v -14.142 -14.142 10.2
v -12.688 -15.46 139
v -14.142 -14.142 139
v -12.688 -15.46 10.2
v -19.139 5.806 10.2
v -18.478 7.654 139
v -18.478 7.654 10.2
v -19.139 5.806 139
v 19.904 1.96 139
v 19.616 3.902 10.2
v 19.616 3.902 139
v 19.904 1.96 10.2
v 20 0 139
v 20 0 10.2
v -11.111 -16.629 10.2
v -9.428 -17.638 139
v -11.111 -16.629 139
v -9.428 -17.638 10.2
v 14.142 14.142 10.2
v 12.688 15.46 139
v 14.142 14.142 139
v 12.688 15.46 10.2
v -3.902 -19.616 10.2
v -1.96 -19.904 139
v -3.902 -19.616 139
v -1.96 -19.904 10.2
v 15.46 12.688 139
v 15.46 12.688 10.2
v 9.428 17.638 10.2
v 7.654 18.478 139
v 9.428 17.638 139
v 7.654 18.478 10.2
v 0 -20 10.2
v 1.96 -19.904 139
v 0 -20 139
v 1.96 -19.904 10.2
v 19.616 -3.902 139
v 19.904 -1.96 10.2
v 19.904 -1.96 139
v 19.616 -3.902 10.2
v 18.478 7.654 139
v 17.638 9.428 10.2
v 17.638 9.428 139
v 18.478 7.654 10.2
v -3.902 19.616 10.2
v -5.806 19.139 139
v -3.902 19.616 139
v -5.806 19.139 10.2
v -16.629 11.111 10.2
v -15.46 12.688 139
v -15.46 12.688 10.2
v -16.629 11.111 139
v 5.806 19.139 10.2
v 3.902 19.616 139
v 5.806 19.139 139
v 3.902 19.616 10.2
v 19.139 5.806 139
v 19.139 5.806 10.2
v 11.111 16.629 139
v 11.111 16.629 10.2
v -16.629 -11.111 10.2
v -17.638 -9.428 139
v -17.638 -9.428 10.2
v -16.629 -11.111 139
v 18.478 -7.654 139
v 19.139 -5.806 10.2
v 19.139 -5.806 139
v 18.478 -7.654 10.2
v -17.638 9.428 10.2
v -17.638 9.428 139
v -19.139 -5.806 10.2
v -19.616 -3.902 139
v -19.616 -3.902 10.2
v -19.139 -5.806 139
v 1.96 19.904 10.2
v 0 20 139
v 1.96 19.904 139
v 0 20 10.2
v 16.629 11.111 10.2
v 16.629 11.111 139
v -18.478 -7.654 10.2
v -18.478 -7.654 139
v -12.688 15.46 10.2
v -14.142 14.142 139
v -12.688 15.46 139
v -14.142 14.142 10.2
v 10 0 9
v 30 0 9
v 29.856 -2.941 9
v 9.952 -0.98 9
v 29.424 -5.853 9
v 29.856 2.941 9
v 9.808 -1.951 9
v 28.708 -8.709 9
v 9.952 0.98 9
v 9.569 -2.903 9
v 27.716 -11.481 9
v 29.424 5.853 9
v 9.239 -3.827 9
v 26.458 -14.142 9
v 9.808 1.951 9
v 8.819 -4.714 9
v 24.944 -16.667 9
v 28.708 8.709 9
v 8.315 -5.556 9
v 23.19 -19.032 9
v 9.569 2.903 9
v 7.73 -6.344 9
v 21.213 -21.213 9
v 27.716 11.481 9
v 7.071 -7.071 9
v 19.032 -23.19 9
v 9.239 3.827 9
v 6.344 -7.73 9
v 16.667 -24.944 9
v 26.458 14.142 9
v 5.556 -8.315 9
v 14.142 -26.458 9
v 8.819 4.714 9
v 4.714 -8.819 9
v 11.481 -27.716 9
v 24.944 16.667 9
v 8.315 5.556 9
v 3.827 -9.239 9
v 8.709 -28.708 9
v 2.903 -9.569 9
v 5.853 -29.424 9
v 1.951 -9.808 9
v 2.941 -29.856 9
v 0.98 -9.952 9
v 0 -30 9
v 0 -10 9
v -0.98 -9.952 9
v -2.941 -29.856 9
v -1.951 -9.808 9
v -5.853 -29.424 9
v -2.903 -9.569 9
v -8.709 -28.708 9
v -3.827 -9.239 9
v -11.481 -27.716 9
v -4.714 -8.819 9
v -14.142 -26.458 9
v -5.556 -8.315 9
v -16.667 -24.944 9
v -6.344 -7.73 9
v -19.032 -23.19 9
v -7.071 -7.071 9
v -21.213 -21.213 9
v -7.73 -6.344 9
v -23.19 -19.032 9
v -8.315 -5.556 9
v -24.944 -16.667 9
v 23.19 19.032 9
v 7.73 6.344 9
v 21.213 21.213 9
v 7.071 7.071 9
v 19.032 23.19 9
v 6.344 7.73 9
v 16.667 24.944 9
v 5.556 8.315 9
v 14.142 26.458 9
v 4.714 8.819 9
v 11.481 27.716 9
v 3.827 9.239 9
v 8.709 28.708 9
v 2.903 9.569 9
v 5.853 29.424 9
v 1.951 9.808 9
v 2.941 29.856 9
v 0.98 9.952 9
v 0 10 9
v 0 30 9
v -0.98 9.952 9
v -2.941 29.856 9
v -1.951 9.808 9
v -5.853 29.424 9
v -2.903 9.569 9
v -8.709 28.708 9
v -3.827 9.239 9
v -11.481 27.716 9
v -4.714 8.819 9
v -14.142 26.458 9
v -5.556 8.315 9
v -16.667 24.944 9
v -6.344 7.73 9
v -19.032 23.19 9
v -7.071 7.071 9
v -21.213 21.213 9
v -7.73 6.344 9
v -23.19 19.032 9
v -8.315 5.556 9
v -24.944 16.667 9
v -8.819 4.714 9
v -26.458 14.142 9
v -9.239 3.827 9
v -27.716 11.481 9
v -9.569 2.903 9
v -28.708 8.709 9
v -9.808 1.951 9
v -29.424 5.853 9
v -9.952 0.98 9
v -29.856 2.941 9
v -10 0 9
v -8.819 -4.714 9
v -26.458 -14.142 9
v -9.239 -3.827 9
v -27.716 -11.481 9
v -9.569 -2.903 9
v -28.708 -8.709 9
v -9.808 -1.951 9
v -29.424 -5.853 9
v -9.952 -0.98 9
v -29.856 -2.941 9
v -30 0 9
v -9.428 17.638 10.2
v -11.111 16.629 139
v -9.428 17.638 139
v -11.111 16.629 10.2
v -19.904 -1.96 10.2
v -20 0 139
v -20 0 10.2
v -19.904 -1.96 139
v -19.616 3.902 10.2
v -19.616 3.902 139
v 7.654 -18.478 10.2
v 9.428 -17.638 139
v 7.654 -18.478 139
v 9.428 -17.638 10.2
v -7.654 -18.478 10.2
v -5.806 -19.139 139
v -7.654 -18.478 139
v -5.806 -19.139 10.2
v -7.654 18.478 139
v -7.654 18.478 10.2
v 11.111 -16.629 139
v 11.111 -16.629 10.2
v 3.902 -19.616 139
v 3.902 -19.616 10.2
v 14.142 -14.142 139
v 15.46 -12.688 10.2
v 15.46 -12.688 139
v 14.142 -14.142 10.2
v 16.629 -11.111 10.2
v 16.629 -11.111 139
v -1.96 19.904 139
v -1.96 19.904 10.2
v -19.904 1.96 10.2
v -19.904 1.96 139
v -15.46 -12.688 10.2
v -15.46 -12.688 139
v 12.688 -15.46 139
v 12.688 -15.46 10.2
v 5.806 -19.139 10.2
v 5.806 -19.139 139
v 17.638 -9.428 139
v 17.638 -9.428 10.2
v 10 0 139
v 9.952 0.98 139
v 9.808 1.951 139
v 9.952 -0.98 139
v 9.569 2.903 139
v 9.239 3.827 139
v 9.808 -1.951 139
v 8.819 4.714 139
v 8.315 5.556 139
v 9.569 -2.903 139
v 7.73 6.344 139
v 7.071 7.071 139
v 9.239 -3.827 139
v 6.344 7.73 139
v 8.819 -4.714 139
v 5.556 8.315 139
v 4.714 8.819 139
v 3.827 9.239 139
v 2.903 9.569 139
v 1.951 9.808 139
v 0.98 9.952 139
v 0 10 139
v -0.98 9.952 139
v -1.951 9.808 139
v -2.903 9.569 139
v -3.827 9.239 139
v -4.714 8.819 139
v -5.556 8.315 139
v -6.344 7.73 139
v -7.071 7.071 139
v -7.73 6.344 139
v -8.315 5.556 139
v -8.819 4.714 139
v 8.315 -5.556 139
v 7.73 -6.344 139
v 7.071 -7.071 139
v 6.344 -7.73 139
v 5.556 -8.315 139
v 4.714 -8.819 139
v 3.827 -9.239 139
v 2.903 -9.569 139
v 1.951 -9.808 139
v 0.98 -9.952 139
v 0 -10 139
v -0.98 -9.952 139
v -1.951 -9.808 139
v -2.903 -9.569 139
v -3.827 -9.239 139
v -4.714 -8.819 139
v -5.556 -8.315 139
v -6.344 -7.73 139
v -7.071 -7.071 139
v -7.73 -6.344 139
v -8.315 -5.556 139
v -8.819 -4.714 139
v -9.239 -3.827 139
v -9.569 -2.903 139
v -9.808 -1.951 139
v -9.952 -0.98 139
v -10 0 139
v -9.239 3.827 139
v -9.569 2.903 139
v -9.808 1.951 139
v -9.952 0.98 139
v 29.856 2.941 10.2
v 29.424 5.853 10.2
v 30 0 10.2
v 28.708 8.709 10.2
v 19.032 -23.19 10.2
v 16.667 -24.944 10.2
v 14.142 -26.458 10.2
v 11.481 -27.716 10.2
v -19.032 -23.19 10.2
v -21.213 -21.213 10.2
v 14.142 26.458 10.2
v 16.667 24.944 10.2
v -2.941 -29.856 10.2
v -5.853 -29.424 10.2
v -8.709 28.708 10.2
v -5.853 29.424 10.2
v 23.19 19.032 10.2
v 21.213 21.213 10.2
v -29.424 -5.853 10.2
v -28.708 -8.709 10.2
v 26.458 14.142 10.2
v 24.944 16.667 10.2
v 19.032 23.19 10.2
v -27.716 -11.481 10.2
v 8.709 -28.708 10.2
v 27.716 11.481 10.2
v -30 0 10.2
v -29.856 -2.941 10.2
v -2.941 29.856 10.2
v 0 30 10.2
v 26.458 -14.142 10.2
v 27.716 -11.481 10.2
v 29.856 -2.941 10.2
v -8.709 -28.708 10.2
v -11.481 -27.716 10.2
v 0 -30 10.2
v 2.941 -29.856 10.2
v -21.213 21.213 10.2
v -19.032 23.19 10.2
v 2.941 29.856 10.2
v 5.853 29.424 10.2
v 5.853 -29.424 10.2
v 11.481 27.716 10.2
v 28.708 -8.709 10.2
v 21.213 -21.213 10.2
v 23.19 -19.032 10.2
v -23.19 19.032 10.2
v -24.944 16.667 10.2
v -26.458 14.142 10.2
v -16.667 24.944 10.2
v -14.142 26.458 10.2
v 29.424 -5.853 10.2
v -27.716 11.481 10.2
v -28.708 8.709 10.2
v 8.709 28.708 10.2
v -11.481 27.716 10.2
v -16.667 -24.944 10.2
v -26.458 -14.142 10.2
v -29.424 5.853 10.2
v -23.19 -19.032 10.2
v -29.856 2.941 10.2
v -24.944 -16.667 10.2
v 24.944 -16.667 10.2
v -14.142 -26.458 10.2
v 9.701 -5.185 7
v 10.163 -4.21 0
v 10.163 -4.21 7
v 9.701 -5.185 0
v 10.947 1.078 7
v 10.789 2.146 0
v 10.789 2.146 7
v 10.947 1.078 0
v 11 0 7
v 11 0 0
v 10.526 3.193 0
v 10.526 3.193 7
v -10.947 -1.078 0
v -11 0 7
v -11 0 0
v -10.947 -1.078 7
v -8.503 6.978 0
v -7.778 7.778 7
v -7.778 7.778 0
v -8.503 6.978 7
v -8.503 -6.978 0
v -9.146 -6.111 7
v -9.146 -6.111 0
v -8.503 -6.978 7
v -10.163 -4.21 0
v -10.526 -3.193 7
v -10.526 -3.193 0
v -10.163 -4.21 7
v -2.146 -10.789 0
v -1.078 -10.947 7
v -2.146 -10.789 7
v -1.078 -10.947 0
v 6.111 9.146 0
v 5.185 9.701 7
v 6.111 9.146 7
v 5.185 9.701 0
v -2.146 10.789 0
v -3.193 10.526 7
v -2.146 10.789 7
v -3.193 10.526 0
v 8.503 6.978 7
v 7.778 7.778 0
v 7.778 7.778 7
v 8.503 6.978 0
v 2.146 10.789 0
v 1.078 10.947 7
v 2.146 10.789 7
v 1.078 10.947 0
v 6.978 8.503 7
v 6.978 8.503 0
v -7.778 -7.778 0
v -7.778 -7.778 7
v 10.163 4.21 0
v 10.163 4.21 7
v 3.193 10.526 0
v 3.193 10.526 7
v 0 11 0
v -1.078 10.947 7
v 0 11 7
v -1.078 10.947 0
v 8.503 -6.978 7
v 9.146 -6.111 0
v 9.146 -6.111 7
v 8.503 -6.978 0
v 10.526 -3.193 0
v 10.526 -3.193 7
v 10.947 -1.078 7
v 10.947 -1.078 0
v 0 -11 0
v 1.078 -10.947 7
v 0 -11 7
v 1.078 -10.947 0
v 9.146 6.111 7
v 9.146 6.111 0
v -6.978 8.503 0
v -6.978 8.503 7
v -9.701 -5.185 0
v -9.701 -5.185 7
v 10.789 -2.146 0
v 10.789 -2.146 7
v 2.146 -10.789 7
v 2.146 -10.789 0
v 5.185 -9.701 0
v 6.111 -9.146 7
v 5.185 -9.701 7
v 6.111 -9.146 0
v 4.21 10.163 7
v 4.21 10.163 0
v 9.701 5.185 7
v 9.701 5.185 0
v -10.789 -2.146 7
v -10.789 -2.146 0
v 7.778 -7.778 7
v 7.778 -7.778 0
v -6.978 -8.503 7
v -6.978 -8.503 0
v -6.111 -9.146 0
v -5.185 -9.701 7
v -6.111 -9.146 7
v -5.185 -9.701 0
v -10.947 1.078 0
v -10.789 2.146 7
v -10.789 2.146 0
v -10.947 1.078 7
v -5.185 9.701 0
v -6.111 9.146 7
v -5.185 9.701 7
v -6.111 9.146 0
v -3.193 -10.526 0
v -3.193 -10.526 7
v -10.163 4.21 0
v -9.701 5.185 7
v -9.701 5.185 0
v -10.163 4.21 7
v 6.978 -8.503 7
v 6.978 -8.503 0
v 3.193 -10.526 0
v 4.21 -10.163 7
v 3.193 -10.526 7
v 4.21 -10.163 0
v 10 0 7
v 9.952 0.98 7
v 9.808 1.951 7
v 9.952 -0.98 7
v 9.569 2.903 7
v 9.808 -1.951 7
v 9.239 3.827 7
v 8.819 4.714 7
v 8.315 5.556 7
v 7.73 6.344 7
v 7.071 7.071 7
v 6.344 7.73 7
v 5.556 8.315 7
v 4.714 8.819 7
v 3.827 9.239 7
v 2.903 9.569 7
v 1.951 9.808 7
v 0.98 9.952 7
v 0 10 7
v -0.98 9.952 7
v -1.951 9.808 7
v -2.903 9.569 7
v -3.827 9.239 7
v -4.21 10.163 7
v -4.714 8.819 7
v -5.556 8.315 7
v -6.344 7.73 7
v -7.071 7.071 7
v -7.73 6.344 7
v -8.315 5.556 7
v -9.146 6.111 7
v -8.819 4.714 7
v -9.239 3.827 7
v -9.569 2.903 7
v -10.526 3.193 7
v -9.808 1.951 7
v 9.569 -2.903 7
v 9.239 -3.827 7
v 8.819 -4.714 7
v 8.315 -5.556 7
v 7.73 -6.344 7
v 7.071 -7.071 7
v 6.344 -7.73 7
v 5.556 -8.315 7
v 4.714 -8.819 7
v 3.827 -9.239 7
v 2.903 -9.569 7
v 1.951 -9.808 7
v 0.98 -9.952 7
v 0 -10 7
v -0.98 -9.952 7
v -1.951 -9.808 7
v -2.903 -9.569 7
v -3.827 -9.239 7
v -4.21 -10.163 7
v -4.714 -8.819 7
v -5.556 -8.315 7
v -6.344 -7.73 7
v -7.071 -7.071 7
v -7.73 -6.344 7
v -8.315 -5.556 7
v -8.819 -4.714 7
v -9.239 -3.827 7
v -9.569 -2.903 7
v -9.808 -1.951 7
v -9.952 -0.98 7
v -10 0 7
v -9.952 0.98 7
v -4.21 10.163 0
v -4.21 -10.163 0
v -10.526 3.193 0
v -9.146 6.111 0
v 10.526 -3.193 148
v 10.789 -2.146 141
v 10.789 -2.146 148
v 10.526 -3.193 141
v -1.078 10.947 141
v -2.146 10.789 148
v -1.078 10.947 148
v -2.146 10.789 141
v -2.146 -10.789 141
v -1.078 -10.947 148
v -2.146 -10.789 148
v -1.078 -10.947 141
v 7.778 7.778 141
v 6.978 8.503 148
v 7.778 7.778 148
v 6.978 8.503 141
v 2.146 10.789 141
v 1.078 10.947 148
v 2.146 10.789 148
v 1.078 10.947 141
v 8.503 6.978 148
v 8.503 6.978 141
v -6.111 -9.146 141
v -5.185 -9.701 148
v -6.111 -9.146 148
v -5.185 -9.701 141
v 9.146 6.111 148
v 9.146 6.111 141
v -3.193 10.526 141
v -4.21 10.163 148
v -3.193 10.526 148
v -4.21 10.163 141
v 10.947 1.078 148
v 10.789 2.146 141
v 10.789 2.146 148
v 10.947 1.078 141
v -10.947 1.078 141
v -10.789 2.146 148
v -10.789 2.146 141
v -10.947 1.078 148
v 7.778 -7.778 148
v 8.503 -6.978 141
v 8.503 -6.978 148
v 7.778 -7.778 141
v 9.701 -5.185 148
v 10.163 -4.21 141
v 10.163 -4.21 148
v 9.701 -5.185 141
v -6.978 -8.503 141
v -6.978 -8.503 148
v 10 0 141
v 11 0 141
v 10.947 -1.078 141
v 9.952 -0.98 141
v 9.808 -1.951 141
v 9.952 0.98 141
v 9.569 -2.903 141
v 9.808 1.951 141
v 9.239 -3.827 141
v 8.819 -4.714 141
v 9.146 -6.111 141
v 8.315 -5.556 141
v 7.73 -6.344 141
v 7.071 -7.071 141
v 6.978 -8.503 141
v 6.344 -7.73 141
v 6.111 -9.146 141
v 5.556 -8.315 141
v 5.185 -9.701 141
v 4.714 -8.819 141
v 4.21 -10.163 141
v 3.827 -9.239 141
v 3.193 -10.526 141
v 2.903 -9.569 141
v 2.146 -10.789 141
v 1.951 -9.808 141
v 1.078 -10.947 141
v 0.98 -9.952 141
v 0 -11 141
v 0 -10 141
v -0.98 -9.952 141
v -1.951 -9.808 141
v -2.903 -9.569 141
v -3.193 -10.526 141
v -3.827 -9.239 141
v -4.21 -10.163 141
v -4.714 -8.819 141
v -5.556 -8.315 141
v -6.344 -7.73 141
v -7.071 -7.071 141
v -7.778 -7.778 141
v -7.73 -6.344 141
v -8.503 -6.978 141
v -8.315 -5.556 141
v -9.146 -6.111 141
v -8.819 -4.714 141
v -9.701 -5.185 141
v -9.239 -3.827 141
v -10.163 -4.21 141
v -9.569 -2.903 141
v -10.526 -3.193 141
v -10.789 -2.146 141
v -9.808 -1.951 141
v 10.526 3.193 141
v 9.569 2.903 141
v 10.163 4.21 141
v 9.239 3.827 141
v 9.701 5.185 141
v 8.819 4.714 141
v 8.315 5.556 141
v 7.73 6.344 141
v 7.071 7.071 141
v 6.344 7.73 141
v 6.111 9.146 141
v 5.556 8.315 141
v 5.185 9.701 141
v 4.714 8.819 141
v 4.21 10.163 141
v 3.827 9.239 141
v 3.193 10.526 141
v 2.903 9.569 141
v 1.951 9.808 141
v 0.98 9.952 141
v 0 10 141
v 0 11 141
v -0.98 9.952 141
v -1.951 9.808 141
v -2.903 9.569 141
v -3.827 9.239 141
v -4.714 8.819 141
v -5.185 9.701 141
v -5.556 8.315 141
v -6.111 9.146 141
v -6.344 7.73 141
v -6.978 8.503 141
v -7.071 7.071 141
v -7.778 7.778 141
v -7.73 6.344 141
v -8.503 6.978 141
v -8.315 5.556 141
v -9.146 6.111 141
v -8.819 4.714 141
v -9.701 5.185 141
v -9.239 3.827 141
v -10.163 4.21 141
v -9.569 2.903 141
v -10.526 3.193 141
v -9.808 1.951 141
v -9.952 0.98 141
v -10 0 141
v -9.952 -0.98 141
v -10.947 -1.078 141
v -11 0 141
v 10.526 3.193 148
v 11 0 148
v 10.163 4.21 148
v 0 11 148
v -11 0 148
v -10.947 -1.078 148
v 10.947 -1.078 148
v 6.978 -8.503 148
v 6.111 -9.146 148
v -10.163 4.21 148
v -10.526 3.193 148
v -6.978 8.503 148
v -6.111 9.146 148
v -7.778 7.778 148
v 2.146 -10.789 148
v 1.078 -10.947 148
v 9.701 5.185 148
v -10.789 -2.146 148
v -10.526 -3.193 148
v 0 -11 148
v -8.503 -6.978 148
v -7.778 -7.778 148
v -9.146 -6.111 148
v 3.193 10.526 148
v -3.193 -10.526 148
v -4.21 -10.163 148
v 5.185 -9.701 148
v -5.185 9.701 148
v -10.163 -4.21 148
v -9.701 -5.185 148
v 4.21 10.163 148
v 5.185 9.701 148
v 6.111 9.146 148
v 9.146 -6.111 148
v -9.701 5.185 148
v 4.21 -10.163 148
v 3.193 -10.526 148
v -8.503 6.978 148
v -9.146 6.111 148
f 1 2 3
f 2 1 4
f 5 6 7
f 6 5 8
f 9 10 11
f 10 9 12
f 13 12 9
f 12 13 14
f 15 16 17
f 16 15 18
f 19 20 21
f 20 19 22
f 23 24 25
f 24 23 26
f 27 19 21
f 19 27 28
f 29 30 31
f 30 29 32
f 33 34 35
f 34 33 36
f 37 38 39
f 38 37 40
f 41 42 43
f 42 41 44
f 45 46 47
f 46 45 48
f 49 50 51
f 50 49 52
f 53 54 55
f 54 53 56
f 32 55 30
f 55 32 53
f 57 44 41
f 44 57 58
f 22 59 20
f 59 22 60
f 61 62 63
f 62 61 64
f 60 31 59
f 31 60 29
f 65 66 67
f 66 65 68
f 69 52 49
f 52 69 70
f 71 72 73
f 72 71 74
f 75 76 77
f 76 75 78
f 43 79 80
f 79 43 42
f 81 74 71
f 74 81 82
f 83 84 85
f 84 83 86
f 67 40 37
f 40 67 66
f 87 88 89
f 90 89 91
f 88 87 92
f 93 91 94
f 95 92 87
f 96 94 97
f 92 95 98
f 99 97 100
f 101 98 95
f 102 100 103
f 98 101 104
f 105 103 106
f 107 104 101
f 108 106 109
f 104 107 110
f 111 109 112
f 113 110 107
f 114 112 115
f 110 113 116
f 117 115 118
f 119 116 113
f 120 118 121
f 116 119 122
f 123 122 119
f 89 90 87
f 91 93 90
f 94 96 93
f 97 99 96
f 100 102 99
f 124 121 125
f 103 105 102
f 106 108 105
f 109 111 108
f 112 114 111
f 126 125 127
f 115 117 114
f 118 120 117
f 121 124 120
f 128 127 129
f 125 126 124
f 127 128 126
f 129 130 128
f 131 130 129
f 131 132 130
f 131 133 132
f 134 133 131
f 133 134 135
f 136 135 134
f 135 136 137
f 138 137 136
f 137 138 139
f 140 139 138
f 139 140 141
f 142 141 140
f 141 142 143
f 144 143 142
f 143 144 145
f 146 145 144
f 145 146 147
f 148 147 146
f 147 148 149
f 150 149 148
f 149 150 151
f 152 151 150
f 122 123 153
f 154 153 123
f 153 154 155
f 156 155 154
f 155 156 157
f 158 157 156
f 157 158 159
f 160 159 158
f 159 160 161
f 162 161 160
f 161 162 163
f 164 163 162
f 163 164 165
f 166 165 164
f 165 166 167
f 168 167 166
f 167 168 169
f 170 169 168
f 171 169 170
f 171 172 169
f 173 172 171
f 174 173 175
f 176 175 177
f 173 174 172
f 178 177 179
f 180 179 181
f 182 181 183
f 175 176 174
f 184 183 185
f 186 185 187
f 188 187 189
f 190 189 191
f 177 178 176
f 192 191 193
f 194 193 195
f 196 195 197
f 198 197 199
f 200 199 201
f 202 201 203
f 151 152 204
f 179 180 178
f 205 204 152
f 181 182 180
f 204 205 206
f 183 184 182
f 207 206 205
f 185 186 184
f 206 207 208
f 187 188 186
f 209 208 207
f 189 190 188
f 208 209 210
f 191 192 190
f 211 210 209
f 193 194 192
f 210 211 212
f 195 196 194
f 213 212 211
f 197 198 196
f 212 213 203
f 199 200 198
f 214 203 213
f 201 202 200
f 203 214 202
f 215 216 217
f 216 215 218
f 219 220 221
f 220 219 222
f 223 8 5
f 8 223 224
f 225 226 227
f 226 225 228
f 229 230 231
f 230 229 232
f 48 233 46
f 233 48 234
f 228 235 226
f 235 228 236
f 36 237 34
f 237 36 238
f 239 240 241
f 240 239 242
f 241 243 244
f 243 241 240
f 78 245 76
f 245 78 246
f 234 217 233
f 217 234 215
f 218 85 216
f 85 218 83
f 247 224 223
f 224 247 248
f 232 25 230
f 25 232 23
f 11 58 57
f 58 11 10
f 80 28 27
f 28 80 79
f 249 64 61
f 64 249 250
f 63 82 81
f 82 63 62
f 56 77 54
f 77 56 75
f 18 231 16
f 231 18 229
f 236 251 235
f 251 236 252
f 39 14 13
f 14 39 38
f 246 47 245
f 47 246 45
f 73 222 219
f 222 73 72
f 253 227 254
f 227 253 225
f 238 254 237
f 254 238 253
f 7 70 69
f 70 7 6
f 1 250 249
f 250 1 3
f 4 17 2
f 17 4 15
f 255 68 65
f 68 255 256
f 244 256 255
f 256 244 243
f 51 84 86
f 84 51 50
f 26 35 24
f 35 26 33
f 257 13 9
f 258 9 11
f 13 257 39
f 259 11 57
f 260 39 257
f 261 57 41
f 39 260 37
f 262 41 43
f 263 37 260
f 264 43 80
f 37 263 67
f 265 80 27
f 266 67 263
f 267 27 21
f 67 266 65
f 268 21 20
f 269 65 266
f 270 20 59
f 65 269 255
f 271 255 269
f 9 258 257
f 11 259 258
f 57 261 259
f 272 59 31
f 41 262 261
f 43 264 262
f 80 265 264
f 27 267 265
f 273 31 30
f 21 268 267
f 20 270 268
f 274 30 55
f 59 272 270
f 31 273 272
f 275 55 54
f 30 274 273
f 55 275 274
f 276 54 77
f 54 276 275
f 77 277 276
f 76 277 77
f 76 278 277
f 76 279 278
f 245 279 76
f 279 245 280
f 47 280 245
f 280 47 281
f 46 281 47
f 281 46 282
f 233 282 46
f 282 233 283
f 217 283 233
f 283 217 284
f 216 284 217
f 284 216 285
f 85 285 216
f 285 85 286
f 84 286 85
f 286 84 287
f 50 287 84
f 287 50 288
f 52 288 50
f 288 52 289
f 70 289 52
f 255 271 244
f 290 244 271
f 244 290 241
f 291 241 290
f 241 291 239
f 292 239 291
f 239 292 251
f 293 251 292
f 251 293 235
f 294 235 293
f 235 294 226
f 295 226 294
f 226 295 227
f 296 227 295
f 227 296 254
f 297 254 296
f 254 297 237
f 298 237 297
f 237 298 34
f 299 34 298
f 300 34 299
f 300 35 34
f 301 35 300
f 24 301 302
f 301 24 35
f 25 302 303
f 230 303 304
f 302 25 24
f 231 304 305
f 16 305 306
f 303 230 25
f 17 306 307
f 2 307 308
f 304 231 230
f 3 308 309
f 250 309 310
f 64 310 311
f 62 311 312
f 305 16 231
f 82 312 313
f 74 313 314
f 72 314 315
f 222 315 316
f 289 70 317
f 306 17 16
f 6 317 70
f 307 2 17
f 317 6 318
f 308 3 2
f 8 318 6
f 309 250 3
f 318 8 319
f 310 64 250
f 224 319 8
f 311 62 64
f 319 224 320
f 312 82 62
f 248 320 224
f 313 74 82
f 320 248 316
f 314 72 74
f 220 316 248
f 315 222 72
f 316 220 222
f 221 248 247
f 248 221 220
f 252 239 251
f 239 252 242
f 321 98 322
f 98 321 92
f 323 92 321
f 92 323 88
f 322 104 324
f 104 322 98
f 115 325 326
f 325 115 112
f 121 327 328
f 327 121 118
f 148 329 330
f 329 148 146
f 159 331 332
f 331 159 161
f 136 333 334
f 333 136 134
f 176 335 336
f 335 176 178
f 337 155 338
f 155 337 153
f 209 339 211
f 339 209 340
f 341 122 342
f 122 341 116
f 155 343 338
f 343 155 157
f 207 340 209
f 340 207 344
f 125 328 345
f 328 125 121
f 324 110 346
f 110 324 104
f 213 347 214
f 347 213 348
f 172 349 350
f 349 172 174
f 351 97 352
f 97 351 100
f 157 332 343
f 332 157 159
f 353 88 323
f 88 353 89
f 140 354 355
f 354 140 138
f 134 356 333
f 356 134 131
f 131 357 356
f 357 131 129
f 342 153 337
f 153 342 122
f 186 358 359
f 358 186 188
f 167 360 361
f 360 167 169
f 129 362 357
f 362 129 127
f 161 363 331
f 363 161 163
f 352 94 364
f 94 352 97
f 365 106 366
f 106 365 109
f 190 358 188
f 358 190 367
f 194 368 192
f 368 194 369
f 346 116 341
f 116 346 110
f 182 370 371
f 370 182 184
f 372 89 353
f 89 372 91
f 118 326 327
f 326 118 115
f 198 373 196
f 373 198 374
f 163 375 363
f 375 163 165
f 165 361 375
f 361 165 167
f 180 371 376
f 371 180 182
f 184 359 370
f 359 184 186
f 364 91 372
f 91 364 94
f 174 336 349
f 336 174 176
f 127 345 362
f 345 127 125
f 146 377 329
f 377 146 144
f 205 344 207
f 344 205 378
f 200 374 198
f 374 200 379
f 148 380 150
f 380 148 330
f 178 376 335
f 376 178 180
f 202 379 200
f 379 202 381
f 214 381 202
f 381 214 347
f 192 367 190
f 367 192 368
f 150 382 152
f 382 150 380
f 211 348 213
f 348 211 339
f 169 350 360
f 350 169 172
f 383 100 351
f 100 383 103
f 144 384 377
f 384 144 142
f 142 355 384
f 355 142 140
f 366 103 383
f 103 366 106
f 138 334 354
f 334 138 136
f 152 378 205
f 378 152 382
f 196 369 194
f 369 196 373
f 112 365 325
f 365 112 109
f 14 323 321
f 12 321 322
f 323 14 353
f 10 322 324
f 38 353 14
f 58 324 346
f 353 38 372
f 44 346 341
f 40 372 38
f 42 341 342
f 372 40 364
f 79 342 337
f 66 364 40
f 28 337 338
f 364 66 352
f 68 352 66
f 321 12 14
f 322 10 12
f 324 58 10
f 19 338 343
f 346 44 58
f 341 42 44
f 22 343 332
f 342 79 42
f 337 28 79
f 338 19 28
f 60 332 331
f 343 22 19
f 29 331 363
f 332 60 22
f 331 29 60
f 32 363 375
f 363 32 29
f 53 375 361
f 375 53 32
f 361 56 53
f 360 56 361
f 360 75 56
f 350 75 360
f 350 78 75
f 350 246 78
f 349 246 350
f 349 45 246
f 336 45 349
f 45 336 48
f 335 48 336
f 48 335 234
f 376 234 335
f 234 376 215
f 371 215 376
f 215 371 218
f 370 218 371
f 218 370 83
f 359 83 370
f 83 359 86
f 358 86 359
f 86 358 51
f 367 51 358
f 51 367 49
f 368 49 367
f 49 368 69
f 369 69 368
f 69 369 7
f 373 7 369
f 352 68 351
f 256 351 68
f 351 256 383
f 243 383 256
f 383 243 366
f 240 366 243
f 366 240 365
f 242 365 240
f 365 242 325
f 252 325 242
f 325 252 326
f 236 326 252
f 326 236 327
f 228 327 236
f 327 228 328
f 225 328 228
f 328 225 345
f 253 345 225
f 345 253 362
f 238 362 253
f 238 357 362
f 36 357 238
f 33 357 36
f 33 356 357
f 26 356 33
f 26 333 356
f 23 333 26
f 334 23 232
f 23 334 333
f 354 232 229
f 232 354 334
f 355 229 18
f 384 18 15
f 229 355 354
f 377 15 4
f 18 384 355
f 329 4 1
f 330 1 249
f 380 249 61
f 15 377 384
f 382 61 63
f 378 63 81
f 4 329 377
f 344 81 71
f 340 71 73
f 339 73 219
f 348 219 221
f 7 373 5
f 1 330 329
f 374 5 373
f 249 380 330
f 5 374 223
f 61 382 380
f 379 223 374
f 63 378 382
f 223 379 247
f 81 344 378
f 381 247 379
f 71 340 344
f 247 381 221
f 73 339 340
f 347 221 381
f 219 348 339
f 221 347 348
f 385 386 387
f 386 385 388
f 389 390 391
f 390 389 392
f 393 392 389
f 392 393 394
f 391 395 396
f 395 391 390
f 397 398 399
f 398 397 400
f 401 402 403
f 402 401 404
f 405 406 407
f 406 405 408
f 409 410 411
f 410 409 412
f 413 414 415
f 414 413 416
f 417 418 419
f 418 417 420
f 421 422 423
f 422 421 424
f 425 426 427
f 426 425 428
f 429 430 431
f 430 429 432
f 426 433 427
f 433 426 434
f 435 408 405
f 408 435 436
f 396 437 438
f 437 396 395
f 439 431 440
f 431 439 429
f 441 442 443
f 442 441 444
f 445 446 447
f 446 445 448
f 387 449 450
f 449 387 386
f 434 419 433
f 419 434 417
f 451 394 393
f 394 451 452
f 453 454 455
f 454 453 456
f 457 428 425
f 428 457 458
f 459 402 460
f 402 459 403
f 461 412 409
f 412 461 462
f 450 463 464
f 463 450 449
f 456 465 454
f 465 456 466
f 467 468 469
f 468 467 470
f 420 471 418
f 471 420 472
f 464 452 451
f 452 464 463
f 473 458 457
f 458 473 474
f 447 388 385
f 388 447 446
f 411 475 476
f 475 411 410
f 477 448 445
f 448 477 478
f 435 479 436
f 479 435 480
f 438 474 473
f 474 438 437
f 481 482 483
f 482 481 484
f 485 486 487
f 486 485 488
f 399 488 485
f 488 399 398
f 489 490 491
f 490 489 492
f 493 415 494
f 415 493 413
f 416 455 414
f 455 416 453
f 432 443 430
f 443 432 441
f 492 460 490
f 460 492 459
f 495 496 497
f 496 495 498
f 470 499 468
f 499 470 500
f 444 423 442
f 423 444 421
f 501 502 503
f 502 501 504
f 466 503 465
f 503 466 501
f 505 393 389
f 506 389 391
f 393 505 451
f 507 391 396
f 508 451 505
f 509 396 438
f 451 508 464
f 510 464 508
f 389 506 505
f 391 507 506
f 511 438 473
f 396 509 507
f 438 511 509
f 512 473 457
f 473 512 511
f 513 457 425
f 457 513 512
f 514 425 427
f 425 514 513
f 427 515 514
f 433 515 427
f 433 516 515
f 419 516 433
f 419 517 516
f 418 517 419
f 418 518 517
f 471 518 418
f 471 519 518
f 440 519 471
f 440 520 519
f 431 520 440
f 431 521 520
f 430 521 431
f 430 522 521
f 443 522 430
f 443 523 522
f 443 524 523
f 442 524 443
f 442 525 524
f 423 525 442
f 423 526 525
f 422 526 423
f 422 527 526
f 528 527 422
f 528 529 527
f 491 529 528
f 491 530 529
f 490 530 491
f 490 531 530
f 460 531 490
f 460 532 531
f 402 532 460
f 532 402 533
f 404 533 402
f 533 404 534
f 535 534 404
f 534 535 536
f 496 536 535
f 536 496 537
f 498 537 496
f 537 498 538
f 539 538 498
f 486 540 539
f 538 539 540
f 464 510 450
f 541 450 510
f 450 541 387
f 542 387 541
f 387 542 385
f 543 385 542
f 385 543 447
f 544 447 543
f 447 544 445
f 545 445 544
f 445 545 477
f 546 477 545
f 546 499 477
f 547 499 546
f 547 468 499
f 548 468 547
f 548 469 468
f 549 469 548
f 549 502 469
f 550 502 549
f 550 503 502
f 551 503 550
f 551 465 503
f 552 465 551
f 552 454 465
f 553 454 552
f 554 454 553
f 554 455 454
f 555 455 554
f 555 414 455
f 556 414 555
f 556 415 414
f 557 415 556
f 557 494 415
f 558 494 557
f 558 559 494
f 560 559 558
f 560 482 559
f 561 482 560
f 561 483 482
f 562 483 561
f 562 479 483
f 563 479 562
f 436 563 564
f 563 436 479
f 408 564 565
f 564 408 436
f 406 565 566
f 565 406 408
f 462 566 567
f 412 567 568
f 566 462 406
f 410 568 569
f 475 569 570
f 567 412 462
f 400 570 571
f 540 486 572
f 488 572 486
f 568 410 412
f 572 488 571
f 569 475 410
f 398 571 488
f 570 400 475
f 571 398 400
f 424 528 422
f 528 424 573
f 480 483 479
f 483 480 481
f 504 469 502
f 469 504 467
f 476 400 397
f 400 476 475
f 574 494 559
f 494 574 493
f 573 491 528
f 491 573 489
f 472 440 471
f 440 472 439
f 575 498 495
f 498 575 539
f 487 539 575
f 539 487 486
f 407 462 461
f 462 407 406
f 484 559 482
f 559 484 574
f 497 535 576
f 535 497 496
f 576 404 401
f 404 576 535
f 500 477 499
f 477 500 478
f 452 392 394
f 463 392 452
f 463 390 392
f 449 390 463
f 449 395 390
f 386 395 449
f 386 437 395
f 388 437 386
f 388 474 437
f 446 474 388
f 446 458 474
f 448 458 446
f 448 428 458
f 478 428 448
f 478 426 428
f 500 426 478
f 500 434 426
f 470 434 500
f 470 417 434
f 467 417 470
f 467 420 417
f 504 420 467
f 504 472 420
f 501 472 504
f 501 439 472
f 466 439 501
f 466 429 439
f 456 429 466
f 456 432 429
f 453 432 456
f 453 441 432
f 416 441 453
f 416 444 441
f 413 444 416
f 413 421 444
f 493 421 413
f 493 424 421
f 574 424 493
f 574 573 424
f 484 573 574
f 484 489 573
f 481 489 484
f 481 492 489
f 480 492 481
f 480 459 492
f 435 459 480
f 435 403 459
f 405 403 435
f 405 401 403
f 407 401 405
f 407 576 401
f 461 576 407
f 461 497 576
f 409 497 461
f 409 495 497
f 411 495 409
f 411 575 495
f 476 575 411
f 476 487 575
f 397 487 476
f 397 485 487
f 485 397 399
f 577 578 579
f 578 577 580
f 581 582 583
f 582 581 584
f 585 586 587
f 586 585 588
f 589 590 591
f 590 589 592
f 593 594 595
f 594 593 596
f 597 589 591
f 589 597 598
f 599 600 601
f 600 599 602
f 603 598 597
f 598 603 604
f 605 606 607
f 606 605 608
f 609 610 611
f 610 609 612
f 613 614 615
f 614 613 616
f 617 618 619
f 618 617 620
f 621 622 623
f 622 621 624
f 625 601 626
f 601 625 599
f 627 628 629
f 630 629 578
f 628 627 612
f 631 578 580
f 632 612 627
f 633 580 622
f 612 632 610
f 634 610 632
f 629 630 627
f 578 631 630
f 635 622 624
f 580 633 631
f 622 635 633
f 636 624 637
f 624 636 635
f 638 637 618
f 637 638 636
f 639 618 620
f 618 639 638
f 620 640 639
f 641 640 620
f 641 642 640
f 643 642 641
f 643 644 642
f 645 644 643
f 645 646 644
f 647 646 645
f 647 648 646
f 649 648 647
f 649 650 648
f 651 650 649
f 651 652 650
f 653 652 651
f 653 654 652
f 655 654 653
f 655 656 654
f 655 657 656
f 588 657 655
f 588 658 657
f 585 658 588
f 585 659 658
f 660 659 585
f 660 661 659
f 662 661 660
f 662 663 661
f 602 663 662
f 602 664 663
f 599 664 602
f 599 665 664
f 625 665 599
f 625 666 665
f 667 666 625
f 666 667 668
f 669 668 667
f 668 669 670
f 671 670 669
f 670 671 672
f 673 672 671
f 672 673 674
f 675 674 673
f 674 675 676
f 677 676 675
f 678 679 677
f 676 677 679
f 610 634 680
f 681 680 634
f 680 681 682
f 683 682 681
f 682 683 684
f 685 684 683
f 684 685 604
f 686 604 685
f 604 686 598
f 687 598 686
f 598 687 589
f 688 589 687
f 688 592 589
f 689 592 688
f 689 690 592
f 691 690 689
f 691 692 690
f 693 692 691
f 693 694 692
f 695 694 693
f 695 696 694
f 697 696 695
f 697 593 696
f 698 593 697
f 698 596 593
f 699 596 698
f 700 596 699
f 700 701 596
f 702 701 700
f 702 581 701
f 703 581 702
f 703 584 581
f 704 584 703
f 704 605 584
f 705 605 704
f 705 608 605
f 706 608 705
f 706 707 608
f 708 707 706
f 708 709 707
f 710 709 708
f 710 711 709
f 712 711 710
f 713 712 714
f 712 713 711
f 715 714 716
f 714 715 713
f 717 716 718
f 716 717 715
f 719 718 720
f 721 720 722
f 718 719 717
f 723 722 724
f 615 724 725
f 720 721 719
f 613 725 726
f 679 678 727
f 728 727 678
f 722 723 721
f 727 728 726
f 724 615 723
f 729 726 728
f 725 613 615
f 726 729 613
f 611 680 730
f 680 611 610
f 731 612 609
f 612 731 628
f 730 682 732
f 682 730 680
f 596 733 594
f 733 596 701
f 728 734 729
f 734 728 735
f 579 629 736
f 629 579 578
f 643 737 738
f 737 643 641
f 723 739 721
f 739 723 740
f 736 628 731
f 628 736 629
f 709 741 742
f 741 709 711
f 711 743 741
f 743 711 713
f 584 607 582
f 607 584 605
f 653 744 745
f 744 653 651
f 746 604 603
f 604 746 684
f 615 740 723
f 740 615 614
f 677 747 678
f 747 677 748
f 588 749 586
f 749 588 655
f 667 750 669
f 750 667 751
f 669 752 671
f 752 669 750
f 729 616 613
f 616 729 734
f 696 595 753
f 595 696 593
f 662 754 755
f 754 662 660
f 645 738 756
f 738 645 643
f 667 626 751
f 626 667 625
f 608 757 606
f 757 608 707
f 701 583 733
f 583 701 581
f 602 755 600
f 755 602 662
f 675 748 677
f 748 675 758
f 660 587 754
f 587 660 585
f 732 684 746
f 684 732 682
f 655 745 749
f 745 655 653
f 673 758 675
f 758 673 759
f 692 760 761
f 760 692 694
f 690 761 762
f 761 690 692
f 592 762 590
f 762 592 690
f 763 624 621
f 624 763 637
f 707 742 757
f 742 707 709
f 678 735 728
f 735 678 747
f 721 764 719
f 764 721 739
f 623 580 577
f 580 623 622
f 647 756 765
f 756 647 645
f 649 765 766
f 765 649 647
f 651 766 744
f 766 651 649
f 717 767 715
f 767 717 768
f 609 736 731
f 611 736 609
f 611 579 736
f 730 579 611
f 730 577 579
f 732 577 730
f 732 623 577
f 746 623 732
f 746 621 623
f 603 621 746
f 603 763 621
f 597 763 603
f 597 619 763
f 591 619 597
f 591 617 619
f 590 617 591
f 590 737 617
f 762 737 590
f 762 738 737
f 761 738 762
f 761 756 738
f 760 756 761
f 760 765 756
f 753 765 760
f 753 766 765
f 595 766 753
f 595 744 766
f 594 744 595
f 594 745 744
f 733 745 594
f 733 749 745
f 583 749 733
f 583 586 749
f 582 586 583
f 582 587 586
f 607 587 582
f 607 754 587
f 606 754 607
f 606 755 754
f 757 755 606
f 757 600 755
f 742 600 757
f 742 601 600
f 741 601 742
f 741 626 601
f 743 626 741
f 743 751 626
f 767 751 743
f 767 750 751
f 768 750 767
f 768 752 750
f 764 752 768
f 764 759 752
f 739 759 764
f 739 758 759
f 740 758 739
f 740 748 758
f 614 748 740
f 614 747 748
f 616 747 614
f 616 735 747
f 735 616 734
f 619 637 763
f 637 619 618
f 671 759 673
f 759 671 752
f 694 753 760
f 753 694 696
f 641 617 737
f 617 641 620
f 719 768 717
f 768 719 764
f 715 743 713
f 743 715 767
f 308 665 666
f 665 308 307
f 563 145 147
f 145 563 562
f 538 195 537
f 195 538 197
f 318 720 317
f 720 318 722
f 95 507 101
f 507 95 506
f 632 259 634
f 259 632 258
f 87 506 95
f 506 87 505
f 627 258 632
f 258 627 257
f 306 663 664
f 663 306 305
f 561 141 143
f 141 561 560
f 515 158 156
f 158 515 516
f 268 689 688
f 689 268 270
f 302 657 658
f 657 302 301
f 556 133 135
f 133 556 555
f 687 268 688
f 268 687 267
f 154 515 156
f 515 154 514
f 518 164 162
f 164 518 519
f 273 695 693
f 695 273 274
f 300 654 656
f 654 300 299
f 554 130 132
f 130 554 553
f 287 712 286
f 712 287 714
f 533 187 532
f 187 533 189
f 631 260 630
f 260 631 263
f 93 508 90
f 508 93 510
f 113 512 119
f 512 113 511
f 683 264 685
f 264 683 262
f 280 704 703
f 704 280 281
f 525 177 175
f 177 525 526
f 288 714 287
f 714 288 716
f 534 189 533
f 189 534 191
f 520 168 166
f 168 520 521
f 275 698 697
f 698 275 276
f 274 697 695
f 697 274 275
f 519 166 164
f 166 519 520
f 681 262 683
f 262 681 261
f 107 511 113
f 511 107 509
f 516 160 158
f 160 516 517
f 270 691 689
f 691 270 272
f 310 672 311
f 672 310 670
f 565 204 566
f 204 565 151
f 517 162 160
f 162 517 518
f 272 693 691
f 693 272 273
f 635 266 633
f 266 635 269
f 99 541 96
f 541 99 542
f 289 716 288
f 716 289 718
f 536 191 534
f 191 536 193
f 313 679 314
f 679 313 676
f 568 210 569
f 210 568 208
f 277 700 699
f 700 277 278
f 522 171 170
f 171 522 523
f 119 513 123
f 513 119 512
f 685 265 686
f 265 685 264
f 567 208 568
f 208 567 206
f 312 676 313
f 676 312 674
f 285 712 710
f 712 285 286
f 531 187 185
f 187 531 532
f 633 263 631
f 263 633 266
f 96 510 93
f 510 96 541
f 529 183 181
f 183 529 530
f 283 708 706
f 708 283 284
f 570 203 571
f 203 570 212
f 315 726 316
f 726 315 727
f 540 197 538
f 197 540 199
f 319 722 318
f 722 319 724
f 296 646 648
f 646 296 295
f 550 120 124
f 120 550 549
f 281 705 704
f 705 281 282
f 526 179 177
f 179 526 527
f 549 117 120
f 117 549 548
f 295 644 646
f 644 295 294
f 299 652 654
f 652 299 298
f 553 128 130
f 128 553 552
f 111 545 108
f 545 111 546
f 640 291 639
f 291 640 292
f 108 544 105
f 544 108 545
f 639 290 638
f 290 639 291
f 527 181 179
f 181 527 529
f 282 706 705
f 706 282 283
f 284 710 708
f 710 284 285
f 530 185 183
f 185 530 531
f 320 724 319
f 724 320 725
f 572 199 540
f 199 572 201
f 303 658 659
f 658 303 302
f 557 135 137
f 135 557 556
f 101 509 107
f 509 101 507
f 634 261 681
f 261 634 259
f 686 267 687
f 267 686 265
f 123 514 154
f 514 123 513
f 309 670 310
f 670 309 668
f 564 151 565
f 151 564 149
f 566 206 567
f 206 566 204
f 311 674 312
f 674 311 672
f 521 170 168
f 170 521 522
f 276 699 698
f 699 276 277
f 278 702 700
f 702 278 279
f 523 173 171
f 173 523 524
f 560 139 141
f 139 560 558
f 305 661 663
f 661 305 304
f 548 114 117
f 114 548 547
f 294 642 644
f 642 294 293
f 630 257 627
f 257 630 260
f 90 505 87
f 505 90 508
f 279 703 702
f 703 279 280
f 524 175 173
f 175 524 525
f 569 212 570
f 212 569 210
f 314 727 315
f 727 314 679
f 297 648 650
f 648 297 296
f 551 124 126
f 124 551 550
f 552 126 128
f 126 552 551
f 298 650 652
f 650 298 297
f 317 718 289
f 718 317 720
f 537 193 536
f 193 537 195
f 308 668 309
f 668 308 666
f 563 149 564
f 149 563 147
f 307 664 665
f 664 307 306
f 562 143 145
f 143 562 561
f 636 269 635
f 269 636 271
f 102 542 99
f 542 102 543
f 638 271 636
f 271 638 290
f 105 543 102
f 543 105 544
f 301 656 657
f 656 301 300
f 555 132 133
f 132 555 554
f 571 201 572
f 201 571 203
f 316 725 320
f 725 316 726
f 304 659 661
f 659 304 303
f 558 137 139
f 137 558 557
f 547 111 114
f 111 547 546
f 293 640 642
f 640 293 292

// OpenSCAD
// Model by Isaac Foraker
//
// Released under Creative Commons Attribution 4.0 International (CC BY 4.0)
// https://creativecommons.org/licenses/by/4.0/

$fn=64;
r608 = 11;
t608 = 7;
o608 = 8;
st = 130;   // max spool thickness

cylinder(h=t608, r=r608);
translate([0,0,st+r608]) cylinder(h=t608, r=r608);
translate([0,0,t608])
    cylinder(h=st+4, r=r608-1);
translate([0,0,t608+2]) {
    cylinder(h=st, r=20);
    // Make a thin disc to prevent spool sliding off this end.
    cylinder(h=1.2, r=30);
}
